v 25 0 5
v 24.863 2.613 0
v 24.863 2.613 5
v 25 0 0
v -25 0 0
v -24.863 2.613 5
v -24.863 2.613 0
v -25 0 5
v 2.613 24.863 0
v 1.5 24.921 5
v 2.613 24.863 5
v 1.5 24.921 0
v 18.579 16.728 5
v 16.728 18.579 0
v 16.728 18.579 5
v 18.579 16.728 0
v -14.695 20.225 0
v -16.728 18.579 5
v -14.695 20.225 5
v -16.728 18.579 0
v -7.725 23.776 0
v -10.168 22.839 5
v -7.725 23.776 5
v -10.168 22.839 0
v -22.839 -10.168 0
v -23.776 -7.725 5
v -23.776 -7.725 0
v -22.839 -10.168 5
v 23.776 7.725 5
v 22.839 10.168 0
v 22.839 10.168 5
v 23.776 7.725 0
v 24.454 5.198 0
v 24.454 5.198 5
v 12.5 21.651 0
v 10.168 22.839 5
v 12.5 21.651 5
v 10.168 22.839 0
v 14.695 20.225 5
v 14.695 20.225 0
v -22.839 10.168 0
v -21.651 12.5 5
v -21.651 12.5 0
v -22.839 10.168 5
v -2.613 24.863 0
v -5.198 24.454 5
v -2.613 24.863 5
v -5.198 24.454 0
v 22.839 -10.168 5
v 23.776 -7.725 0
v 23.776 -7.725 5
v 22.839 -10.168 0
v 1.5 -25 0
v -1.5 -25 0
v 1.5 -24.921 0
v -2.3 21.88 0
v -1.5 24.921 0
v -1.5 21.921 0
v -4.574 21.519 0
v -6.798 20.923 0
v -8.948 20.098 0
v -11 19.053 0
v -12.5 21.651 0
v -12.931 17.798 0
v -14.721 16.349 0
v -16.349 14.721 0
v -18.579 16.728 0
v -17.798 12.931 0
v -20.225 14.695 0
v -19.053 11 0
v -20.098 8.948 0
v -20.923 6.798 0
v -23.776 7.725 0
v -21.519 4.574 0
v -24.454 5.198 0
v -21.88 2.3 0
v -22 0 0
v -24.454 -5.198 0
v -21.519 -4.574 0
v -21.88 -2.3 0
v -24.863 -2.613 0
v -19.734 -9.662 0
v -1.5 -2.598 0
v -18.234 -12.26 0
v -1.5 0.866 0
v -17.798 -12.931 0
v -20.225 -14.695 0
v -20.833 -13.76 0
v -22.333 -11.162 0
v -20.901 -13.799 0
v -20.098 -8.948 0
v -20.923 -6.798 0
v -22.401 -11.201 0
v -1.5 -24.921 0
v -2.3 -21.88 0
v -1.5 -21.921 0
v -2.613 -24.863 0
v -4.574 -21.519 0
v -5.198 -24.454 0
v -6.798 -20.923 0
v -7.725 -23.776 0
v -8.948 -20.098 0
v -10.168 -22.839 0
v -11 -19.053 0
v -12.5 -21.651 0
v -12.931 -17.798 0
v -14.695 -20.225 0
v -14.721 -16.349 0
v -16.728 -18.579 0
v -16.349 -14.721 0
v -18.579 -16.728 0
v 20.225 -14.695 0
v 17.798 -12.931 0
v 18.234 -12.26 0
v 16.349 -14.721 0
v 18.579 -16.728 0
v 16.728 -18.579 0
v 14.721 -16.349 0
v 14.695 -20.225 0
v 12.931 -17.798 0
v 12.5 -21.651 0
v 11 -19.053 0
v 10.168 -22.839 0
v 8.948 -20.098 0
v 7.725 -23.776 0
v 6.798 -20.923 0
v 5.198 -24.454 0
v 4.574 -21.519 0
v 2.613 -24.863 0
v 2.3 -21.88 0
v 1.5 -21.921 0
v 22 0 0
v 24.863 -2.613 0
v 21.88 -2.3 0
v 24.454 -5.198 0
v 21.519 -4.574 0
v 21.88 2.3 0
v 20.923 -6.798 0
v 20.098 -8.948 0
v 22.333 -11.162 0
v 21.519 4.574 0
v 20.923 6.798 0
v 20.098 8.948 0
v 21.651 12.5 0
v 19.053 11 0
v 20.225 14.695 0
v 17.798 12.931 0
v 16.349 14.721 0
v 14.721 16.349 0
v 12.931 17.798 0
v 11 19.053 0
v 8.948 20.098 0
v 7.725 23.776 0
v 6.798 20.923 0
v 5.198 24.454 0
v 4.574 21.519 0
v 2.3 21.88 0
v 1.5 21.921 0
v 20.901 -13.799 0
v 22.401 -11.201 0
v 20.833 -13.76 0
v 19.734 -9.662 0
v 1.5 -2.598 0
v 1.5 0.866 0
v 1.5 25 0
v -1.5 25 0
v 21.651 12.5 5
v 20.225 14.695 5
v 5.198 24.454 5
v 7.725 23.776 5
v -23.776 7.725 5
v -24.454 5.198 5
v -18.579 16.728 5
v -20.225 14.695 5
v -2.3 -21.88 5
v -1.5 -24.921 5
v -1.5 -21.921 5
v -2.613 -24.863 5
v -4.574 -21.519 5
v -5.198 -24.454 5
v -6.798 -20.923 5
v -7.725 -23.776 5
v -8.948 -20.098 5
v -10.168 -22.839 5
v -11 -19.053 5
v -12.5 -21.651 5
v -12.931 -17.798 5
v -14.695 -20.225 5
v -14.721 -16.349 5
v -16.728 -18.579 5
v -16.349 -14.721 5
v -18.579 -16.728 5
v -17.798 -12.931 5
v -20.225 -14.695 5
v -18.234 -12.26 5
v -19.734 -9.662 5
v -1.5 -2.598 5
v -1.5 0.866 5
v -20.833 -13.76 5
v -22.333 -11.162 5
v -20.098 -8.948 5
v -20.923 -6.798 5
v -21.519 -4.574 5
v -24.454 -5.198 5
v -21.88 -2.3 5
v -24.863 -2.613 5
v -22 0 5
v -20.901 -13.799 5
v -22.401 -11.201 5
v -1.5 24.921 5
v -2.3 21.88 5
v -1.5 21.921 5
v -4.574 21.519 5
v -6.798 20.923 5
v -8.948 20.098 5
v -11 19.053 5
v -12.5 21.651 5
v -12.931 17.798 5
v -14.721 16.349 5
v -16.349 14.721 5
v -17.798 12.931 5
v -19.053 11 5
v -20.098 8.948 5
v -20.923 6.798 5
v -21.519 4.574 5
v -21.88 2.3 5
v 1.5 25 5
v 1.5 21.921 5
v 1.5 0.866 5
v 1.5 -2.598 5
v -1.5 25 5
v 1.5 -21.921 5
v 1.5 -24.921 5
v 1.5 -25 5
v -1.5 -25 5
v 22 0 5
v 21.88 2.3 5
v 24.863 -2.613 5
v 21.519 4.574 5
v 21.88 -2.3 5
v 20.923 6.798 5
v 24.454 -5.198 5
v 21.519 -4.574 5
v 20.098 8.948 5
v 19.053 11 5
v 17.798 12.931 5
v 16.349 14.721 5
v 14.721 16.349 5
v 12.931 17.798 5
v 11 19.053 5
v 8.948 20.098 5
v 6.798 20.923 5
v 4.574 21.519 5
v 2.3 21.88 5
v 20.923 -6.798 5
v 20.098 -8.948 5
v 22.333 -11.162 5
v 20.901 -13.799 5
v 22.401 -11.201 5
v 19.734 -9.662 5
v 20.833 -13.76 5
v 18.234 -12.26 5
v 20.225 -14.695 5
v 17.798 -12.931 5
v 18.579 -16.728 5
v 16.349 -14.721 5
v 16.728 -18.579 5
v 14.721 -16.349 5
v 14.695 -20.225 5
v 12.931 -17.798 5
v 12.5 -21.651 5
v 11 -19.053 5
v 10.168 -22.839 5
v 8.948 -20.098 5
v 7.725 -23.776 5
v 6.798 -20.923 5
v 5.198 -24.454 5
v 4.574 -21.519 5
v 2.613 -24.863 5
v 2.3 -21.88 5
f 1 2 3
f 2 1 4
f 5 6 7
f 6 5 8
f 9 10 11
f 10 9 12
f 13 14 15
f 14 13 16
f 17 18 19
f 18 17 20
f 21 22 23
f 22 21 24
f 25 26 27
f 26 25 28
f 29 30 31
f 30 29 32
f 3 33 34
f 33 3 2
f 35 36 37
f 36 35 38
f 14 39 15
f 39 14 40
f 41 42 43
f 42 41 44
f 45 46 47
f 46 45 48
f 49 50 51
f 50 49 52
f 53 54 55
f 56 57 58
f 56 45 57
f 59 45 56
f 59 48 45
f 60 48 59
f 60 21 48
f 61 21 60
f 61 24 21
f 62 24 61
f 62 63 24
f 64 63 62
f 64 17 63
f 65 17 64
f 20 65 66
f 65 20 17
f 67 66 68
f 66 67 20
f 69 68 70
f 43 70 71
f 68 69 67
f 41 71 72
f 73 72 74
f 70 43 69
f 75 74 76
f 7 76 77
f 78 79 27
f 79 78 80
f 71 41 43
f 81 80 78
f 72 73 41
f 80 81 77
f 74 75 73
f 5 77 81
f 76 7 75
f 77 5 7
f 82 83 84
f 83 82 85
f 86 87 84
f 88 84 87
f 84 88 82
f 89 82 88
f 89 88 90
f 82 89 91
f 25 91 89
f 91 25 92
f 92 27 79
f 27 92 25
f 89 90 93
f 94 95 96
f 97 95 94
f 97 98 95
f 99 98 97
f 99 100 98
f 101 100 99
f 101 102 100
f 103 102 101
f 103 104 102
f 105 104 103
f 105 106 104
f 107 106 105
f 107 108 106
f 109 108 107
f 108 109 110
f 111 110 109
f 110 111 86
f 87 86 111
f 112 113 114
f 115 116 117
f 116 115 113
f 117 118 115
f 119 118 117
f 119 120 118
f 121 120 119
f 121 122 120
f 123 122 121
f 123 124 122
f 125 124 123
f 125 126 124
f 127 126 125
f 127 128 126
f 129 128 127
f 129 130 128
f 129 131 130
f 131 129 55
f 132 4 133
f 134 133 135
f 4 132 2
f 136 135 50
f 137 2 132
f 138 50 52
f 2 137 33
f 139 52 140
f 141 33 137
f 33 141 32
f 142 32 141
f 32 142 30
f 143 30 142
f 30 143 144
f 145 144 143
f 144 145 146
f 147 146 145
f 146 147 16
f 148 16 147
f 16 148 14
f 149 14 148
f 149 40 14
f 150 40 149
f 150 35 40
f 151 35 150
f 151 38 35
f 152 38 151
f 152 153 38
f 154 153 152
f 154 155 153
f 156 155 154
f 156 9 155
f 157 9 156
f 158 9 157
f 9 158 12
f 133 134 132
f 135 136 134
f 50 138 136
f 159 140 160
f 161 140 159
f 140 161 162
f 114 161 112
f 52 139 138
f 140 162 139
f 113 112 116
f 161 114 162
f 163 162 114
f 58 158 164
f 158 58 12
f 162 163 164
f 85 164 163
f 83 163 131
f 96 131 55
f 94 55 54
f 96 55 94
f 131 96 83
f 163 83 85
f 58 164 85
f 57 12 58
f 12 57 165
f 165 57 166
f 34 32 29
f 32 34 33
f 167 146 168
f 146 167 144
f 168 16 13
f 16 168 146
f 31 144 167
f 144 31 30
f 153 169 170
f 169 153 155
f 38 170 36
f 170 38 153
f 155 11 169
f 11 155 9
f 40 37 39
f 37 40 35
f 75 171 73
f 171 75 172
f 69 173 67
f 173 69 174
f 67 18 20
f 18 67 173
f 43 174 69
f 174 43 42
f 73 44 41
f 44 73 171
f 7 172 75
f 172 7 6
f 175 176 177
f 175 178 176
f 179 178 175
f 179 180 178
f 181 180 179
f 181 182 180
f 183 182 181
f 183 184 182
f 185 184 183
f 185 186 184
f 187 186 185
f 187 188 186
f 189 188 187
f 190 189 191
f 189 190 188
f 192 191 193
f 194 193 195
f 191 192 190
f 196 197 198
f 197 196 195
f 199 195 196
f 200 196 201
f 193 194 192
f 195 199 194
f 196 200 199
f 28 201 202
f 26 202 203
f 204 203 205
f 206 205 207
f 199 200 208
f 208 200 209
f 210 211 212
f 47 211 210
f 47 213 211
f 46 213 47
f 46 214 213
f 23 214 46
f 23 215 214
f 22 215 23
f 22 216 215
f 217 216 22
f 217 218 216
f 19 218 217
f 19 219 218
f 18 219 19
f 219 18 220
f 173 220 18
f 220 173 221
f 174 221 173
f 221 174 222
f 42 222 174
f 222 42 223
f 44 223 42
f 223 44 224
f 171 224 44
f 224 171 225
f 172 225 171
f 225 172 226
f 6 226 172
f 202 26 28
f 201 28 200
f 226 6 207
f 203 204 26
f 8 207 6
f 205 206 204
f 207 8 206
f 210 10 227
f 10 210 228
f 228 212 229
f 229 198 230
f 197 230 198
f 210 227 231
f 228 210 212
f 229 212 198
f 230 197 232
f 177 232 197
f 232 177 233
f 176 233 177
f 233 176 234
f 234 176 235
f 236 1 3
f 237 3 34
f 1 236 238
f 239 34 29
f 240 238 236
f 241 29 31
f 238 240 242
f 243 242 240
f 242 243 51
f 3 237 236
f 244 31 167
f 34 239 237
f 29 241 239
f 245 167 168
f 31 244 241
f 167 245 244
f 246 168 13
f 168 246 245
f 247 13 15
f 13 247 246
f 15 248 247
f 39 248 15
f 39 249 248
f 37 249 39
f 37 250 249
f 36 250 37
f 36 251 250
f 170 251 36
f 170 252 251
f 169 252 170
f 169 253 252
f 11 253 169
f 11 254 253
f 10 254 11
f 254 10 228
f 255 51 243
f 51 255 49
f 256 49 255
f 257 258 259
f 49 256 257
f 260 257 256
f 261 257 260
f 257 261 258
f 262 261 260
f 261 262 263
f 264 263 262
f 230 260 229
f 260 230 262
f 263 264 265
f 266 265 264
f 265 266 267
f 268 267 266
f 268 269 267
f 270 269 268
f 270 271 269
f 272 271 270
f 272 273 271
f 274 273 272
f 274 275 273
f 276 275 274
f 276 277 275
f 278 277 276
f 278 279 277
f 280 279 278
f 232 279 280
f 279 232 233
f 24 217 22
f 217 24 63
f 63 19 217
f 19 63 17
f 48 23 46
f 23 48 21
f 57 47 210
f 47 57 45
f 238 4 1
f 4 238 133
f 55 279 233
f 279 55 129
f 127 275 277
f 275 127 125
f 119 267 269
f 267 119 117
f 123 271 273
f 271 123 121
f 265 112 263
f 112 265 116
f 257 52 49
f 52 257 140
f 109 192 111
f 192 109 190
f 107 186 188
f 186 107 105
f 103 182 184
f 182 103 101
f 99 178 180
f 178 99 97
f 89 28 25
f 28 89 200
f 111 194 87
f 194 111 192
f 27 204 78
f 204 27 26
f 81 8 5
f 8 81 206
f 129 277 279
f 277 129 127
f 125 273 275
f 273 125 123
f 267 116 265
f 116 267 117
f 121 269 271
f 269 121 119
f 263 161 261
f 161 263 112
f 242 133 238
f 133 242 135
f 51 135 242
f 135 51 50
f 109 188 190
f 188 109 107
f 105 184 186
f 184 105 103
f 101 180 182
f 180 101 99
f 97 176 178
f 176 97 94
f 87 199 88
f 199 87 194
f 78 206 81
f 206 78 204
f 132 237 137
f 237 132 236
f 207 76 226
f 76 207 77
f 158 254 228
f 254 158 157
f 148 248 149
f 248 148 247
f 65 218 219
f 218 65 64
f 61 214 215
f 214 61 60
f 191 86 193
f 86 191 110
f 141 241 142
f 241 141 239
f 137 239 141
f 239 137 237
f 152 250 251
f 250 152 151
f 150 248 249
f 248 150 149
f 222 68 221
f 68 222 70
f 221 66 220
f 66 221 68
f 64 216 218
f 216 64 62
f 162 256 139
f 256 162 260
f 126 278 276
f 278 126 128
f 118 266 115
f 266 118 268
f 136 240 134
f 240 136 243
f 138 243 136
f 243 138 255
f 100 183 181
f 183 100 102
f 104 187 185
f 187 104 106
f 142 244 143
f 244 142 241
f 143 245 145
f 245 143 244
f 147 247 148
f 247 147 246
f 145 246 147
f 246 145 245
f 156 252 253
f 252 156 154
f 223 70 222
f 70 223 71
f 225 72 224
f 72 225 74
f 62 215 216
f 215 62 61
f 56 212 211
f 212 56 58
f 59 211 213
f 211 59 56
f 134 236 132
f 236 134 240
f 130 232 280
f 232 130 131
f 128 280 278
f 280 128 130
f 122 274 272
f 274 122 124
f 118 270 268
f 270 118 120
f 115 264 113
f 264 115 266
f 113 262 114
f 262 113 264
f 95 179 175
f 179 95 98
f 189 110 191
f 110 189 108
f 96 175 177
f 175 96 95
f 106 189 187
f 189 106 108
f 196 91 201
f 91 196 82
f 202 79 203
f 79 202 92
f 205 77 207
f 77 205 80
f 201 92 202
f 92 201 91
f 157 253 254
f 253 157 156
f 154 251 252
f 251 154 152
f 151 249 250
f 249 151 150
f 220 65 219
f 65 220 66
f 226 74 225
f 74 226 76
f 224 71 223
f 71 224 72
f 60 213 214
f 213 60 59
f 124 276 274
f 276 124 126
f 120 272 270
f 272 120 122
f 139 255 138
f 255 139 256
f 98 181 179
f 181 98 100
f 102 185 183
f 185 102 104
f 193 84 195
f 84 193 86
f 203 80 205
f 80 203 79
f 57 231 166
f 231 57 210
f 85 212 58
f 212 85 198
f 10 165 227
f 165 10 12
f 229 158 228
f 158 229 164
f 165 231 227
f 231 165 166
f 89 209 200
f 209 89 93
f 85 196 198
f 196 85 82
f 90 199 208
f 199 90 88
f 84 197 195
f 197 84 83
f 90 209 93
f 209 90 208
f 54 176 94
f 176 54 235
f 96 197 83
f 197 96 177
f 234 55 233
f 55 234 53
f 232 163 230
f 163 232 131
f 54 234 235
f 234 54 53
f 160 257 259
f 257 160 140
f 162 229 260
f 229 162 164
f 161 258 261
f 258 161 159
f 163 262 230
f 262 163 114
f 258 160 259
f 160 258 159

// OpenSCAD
$fn=60;
rad1 = 25;
height = 5;
wall = 3;

difference()
{
    cylinder(r=rad1, h=5);
    translate([0,0,-.5])cylinder(r=rad1-wall, h=6);
}

for(i = [0,120,180,240])
{
rotate([0,0,i])translate([-wall/2,0,0])cube([wall,rad1,height]);
}
